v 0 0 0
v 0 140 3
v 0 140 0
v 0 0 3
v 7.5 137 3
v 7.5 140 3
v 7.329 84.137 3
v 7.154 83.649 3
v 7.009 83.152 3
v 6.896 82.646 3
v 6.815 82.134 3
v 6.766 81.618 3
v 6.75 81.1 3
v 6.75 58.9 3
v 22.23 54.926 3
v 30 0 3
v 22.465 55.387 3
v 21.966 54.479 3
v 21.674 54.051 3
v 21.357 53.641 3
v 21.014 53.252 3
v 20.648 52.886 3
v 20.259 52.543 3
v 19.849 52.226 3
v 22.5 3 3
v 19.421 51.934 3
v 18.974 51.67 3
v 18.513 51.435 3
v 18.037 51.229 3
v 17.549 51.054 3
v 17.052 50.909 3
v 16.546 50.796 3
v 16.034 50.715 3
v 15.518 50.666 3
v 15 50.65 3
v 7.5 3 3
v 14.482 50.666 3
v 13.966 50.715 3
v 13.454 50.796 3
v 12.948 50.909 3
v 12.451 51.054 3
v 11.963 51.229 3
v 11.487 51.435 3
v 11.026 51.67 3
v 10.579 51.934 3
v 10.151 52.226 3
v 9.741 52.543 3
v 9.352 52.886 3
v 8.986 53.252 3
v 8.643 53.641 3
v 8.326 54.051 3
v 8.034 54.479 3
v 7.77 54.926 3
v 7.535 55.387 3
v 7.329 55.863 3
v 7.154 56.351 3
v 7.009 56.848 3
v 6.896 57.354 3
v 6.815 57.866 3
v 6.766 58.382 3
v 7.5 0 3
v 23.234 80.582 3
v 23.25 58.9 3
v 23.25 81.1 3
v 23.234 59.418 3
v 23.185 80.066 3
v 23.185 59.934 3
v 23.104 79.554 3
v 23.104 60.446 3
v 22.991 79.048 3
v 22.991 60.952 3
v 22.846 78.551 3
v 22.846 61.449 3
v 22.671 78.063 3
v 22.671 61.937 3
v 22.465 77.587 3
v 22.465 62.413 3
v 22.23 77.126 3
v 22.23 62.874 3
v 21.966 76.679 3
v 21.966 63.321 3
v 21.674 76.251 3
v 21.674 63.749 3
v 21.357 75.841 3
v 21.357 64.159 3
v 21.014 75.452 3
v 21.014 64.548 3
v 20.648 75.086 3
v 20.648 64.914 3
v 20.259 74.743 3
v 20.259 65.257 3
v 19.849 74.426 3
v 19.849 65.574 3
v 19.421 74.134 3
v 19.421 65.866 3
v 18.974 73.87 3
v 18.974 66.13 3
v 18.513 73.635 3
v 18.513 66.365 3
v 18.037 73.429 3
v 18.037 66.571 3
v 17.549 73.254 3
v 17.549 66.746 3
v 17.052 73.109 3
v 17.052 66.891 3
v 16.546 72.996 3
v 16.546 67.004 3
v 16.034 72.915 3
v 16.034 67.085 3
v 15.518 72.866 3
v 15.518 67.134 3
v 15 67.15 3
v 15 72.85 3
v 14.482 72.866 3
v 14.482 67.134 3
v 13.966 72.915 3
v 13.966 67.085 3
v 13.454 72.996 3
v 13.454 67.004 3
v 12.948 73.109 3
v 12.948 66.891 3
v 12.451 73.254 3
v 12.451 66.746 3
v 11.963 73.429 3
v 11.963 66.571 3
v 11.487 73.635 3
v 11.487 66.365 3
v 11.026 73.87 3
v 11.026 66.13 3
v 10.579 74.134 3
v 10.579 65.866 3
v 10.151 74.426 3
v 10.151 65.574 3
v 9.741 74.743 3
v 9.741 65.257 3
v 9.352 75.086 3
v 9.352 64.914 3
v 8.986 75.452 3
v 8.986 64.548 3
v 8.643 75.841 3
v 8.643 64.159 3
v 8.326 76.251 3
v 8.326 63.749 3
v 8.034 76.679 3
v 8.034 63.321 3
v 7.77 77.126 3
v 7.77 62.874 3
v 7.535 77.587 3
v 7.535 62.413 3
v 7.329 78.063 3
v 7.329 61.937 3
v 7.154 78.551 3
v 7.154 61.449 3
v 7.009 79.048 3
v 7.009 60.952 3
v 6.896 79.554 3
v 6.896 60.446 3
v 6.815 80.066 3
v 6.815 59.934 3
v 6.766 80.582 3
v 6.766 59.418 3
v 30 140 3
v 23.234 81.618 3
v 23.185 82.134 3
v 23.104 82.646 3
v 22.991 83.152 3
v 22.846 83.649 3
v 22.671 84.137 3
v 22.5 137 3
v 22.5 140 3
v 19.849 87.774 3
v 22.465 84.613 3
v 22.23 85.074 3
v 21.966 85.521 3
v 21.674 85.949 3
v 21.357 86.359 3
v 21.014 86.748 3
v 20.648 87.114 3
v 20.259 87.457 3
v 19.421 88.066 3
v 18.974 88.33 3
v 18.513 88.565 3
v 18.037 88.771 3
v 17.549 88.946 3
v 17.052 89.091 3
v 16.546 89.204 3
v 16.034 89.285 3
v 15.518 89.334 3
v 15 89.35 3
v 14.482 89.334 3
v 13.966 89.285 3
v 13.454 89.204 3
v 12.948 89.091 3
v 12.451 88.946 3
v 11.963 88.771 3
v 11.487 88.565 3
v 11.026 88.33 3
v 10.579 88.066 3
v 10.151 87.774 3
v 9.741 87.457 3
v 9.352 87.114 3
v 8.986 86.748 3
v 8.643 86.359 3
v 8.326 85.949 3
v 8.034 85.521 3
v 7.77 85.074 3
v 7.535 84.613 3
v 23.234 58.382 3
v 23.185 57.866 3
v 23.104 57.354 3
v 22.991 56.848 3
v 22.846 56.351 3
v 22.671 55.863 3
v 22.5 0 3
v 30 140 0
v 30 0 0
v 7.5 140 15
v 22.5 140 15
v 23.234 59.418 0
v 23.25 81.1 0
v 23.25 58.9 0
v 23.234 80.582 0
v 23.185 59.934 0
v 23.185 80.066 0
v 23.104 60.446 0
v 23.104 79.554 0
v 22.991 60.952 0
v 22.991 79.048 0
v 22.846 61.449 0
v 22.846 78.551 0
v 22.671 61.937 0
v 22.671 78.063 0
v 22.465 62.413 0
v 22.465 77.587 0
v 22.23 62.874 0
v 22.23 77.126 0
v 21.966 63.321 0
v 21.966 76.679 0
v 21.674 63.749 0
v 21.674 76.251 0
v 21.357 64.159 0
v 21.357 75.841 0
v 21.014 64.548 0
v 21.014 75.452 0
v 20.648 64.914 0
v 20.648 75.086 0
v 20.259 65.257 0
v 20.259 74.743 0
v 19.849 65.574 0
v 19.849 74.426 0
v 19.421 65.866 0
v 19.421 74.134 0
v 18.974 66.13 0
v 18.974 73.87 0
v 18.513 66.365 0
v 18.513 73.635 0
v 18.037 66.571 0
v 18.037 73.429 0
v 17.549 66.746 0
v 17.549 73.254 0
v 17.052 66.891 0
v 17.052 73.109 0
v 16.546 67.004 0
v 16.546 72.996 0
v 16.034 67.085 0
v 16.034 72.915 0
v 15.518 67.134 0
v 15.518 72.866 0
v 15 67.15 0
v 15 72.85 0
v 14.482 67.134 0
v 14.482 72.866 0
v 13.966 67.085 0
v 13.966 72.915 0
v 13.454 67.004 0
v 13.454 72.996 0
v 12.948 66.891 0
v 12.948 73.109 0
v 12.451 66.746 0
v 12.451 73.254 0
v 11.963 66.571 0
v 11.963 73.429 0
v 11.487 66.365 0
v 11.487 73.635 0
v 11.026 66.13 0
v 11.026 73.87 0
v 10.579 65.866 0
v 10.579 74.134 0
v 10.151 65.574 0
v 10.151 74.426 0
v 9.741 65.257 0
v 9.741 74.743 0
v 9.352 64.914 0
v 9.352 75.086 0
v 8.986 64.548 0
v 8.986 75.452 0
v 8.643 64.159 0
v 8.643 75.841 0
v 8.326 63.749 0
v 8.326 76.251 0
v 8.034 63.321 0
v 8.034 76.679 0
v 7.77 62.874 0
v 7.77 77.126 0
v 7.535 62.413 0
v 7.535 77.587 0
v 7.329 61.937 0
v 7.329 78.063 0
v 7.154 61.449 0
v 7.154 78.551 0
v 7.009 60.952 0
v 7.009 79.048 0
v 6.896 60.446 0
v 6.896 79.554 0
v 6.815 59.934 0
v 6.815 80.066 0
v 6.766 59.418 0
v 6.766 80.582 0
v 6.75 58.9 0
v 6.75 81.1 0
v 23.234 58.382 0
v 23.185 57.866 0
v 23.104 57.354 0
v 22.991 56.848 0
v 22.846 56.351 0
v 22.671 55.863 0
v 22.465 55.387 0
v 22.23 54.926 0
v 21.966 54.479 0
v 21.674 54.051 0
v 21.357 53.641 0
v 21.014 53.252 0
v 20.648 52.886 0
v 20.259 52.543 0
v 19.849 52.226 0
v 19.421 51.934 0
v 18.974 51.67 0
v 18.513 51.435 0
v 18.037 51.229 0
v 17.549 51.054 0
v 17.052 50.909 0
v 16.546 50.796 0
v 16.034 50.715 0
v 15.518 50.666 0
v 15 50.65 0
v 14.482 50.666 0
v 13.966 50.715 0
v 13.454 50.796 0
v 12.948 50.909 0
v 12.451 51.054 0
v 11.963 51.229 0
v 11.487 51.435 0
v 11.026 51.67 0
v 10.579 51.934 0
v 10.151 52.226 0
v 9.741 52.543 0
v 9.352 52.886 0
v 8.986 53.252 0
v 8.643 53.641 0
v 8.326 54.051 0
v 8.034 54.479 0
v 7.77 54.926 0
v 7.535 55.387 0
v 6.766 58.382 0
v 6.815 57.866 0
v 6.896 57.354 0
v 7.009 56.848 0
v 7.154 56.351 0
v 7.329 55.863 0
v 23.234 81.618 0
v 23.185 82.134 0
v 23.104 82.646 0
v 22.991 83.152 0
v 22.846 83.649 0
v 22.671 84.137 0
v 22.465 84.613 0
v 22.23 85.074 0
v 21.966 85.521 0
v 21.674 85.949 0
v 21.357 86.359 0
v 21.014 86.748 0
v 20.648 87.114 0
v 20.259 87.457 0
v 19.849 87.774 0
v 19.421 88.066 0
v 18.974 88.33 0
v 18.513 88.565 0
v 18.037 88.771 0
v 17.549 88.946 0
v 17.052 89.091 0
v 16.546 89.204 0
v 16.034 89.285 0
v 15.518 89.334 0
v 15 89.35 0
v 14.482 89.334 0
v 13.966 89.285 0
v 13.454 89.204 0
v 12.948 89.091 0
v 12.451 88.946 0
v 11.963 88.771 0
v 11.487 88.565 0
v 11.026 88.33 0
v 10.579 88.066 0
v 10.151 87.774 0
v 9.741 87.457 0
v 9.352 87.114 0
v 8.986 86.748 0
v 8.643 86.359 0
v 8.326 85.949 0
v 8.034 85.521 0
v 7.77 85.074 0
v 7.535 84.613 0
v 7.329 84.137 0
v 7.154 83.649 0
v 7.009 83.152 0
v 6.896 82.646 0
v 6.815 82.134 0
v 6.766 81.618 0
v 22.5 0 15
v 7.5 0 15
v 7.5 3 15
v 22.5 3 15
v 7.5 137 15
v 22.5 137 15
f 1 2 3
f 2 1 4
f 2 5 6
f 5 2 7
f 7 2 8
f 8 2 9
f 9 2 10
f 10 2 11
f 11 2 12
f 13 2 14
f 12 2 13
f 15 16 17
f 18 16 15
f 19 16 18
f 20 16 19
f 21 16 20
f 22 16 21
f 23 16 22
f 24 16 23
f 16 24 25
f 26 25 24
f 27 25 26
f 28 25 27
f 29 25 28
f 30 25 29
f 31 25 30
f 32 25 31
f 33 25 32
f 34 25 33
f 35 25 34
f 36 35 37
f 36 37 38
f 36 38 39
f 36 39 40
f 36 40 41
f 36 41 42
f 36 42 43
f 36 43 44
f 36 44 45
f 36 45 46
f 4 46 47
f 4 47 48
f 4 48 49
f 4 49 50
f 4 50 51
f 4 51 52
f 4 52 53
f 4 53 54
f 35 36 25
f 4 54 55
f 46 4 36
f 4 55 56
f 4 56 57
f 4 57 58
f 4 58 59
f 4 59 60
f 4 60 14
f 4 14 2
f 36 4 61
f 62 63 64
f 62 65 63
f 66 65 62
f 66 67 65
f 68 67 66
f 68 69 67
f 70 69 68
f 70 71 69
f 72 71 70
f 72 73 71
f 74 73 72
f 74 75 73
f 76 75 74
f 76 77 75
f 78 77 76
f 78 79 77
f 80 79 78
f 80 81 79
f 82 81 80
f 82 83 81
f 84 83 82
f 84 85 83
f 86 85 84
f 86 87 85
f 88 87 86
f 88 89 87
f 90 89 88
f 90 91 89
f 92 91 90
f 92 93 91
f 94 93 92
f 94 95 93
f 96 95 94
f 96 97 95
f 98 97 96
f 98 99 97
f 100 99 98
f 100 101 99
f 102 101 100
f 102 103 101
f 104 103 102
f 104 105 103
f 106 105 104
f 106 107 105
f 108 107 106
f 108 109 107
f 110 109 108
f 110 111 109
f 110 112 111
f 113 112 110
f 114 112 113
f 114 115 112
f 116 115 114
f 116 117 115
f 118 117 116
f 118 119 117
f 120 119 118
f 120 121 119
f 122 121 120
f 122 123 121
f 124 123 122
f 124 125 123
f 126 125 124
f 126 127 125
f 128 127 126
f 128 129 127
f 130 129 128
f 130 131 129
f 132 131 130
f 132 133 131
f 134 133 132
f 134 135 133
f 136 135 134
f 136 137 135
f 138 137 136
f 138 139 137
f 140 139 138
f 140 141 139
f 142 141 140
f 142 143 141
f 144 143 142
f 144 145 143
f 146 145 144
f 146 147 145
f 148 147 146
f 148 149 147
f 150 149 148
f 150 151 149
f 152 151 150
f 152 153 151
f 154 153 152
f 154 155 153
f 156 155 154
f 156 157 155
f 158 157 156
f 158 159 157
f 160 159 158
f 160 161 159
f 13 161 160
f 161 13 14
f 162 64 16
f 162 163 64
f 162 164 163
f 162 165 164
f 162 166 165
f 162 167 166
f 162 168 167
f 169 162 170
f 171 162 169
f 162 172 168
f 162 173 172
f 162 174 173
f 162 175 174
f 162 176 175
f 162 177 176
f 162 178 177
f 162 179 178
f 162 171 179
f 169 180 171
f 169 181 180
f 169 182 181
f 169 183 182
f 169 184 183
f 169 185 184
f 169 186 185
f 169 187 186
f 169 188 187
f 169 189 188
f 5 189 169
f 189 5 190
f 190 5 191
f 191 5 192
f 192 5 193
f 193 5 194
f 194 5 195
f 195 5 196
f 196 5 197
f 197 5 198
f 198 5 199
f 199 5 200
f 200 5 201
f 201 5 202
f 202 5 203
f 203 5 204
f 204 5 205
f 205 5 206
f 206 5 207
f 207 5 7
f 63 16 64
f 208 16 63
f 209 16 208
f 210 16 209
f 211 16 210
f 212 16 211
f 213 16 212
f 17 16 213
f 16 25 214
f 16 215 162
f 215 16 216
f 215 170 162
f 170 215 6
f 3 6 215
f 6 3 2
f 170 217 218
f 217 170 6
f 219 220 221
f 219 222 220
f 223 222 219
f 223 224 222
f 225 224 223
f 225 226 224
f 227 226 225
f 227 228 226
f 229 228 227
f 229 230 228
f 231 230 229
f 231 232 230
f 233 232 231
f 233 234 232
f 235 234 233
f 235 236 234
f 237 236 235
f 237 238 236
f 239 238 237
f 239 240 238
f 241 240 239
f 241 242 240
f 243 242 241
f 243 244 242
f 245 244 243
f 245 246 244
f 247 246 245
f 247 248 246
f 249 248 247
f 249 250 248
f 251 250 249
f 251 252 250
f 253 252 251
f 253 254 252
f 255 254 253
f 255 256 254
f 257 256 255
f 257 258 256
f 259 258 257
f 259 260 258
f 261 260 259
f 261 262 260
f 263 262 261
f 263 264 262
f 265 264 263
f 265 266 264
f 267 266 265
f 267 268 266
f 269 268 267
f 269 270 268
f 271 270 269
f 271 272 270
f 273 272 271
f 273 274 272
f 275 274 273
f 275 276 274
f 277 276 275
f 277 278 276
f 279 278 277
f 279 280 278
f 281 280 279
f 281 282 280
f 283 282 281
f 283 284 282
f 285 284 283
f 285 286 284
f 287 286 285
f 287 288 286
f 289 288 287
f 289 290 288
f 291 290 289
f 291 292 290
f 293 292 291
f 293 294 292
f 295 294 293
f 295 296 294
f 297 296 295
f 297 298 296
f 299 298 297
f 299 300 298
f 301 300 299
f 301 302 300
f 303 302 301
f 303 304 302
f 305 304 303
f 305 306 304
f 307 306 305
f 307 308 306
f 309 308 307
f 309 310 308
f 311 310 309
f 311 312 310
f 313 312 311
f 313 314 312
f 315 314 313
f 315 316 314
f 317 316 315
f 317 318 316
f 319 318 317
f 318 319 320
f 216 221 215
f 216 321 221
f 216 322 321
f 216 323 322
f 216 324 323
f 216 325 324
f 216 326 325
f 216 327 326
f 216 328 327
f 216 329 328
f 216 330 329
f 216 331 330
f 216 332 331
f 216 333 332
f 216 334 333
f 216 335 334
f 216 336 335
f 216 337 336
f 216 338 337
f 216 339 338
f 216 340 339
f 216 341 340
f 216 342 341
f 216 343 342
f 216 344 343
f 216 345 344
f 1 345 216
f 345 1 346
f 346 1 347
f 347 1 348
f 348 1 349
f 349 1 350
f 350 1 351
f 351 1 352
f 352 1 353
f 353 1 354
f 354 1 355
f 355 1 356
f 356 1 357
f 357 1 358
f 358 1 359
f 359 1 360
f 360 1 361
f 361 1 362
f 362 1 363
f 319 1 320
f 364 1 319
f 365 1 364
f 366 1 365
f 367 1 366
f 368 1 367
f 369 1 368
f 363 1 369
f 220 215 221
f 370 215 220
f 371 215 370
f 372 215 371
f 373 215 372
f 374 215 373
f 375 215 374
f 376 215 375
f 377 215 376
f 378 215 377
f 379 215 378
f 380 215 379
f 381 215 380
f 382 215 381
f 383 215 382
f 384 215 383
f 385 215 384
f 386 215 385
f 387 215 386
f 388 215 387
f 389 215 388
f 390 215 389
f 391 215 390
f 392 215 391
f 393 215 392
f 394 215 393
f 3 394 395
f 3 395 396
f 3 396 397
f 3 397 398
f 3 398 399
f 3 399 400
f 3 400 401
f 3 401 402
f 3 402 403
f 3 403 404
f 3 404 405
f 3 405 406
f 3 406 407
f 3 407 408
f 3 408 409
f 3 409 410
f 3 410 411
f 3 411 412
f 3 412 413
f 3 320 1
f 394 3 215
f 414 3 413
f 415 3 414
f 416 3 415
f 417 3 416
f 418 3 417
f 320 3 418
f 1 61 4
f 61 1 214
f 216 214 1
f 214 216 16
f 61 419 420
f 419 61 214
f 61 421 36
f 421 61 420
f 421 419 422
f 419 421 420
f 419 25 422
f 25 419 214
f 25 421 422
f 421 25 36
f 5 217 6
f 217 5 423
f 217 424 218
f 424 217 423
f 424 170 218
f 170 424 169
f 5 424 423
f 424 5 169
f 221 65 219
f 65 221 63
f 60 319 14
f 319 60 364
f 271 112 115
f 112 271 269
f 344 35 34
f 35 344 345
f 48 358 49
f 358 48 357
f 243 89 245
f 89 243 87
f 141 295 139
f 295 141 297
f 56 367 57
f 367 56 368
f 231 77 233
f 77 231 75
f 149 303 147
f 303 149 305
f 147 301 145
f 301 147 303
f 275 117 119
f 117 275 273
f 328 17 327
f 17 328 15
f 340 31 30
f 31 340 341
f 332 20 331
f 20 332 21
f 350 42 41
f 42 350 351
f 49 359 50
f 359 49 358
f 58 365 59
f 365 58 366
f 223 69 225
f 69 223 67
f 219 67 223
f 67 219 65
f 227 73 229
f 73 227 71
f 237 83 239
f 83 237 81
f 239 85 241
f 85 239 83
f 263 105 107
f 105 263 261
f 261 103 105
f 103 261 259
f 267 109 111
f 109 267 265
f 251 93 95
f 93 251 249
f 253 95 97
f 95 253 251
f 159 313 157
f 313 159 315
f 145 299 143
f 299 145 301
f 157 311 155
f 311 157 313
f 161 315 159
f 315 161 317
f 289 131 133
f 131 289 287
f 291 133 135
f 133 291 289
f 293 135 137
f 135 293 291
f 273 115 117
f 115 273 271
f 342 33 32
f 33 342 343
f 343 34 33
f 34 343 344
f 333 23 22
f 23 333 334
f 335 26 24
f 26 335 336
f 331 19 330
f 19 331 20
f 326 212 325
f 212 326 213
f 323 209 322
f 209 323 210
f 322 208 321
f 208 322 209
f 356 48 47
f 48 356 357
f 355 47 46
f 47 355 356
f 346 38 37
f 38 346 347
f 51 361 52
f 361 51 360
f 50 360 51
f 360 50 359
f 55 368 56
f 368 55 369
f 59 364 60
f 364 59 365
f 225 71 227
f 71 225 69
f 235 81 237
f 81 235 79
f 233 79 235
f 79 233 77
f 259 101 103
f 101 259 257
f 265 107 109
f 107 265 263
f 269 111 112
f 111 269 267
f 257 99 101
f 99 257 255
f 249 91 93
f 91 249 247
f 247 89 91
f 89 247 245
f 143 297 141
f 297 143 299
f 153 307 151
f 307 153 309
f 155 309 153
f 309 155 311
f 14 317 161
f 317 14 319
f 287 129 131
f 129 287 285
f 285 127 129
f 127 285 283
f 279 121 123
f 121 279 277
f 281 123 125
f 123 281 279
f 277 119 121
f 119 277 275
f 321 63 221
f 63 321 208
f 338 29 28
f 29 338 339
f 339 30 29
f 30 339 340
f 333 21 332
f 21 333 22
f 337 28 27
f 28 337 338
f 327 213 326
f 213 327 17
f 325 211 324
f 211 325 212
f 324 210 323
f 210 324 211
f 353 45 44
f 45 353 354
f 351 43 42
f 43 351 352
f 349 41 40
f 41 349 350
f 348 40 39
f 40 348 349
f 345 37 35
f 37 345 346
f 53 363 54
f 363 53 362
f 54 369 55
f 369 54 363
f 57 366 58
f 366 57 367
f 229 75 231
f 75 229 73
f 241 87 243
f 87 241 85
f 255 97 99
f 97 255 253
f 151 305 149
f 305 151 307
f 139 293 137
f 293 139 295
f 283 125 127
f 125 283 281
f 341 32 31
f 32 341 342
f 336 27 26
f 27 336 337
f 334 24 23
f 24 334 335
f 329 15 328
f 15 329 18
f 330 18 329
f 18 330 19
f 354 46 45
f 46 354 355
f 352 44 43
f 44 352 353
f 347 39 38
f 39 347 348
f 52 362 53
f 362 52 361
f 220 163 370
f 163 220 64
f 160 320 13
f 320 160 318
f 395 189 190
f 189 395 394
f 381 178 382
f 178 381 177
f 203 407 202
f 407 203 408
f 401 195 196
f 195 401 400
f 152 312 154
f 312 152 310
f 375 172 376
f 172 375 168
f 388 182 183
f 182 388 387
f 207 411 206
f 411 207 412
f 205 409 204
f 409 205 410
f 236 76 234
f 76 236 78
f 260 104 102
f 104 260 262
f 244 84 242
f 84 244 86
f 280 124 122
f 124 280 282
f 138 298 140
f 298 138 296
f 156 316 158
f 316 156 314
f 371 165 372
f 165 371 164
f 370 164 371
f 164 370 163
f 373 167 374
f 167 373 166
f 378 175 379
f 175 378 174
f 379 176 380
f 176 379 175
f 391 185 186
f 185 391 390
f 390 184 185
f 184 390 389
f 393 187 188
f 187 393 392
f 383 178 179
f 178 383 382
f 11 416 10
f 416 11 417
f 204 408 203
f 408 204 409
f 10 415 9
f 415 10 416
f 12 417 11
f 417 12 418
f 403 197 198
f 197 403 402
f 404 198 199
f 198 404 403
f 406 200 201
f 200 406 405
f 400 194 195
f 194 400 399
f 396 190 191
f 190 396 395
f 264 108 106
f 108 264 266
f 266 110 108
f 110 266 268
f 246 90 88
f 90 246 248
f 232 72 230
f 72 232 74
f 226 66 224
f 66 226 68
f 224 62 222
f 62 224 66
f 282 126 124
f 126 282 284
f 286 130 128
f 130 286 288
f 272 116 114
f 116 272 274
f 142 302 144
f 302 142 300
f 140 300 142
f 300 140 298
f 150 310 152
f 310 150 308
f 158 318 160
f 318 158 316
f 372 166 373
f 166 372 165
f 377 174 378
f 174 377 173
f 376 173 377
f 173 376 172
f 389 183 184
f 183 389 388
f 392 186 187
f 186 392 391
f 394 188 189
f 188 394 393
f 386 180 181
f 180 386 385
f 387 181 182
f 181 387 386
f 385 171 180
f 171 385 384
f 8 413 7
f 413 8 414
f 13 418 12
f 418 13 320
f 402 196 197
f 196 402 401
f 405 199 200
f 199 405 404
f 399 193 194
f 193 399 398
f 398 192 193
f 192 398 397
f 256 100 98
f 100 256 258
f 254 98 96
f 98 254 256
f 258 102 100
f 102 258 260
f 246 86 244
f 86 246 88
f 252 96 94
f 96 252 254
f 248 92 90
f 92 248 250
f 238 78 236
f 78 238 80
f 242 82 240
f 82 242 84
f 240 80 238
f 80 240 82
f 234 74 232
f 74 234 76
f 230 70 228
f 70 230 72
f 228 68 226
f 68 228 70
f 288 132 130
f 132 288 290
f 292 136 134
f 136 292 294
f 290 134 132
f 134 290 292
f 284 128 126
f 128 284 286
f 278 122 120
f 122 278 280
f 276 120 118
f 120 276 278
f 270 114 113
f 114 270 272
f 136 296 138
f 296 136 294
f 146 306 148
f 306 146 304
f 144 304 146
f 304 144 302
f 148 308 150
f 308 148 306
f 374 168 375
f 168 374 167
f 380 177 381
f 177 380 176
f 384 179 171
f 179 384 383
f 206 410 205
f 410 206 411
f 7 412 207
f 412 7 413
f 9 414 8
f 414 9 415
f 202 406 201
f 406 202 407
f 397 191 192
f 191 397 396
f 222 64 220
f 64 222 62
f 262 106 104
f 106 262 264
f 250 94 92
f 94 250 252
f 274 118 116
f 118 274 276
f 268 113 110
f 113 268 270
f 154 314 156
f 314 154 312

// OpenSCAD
//
//
// SPP2 Ultrasonic Water Level Measurement bracket
//
// June 26, 2018
//

$fn =100;


difference()
{
    union()
    {
    // top

        cube([30, 140, 3]);


        // wings

        translate([7.5,0,0])
        cube([15, 3, 15]);

        translate([7.5,137,0])
        cube([15, 3, 15]);
    }

    // Holes for Ultrasonic

    translate([15,50.9+8, -5])
    #cylinder(20,r=8.25);
    
    translate([15,140- 50.9-8, -5])
    #cylinder(20,r=8.25);
}
